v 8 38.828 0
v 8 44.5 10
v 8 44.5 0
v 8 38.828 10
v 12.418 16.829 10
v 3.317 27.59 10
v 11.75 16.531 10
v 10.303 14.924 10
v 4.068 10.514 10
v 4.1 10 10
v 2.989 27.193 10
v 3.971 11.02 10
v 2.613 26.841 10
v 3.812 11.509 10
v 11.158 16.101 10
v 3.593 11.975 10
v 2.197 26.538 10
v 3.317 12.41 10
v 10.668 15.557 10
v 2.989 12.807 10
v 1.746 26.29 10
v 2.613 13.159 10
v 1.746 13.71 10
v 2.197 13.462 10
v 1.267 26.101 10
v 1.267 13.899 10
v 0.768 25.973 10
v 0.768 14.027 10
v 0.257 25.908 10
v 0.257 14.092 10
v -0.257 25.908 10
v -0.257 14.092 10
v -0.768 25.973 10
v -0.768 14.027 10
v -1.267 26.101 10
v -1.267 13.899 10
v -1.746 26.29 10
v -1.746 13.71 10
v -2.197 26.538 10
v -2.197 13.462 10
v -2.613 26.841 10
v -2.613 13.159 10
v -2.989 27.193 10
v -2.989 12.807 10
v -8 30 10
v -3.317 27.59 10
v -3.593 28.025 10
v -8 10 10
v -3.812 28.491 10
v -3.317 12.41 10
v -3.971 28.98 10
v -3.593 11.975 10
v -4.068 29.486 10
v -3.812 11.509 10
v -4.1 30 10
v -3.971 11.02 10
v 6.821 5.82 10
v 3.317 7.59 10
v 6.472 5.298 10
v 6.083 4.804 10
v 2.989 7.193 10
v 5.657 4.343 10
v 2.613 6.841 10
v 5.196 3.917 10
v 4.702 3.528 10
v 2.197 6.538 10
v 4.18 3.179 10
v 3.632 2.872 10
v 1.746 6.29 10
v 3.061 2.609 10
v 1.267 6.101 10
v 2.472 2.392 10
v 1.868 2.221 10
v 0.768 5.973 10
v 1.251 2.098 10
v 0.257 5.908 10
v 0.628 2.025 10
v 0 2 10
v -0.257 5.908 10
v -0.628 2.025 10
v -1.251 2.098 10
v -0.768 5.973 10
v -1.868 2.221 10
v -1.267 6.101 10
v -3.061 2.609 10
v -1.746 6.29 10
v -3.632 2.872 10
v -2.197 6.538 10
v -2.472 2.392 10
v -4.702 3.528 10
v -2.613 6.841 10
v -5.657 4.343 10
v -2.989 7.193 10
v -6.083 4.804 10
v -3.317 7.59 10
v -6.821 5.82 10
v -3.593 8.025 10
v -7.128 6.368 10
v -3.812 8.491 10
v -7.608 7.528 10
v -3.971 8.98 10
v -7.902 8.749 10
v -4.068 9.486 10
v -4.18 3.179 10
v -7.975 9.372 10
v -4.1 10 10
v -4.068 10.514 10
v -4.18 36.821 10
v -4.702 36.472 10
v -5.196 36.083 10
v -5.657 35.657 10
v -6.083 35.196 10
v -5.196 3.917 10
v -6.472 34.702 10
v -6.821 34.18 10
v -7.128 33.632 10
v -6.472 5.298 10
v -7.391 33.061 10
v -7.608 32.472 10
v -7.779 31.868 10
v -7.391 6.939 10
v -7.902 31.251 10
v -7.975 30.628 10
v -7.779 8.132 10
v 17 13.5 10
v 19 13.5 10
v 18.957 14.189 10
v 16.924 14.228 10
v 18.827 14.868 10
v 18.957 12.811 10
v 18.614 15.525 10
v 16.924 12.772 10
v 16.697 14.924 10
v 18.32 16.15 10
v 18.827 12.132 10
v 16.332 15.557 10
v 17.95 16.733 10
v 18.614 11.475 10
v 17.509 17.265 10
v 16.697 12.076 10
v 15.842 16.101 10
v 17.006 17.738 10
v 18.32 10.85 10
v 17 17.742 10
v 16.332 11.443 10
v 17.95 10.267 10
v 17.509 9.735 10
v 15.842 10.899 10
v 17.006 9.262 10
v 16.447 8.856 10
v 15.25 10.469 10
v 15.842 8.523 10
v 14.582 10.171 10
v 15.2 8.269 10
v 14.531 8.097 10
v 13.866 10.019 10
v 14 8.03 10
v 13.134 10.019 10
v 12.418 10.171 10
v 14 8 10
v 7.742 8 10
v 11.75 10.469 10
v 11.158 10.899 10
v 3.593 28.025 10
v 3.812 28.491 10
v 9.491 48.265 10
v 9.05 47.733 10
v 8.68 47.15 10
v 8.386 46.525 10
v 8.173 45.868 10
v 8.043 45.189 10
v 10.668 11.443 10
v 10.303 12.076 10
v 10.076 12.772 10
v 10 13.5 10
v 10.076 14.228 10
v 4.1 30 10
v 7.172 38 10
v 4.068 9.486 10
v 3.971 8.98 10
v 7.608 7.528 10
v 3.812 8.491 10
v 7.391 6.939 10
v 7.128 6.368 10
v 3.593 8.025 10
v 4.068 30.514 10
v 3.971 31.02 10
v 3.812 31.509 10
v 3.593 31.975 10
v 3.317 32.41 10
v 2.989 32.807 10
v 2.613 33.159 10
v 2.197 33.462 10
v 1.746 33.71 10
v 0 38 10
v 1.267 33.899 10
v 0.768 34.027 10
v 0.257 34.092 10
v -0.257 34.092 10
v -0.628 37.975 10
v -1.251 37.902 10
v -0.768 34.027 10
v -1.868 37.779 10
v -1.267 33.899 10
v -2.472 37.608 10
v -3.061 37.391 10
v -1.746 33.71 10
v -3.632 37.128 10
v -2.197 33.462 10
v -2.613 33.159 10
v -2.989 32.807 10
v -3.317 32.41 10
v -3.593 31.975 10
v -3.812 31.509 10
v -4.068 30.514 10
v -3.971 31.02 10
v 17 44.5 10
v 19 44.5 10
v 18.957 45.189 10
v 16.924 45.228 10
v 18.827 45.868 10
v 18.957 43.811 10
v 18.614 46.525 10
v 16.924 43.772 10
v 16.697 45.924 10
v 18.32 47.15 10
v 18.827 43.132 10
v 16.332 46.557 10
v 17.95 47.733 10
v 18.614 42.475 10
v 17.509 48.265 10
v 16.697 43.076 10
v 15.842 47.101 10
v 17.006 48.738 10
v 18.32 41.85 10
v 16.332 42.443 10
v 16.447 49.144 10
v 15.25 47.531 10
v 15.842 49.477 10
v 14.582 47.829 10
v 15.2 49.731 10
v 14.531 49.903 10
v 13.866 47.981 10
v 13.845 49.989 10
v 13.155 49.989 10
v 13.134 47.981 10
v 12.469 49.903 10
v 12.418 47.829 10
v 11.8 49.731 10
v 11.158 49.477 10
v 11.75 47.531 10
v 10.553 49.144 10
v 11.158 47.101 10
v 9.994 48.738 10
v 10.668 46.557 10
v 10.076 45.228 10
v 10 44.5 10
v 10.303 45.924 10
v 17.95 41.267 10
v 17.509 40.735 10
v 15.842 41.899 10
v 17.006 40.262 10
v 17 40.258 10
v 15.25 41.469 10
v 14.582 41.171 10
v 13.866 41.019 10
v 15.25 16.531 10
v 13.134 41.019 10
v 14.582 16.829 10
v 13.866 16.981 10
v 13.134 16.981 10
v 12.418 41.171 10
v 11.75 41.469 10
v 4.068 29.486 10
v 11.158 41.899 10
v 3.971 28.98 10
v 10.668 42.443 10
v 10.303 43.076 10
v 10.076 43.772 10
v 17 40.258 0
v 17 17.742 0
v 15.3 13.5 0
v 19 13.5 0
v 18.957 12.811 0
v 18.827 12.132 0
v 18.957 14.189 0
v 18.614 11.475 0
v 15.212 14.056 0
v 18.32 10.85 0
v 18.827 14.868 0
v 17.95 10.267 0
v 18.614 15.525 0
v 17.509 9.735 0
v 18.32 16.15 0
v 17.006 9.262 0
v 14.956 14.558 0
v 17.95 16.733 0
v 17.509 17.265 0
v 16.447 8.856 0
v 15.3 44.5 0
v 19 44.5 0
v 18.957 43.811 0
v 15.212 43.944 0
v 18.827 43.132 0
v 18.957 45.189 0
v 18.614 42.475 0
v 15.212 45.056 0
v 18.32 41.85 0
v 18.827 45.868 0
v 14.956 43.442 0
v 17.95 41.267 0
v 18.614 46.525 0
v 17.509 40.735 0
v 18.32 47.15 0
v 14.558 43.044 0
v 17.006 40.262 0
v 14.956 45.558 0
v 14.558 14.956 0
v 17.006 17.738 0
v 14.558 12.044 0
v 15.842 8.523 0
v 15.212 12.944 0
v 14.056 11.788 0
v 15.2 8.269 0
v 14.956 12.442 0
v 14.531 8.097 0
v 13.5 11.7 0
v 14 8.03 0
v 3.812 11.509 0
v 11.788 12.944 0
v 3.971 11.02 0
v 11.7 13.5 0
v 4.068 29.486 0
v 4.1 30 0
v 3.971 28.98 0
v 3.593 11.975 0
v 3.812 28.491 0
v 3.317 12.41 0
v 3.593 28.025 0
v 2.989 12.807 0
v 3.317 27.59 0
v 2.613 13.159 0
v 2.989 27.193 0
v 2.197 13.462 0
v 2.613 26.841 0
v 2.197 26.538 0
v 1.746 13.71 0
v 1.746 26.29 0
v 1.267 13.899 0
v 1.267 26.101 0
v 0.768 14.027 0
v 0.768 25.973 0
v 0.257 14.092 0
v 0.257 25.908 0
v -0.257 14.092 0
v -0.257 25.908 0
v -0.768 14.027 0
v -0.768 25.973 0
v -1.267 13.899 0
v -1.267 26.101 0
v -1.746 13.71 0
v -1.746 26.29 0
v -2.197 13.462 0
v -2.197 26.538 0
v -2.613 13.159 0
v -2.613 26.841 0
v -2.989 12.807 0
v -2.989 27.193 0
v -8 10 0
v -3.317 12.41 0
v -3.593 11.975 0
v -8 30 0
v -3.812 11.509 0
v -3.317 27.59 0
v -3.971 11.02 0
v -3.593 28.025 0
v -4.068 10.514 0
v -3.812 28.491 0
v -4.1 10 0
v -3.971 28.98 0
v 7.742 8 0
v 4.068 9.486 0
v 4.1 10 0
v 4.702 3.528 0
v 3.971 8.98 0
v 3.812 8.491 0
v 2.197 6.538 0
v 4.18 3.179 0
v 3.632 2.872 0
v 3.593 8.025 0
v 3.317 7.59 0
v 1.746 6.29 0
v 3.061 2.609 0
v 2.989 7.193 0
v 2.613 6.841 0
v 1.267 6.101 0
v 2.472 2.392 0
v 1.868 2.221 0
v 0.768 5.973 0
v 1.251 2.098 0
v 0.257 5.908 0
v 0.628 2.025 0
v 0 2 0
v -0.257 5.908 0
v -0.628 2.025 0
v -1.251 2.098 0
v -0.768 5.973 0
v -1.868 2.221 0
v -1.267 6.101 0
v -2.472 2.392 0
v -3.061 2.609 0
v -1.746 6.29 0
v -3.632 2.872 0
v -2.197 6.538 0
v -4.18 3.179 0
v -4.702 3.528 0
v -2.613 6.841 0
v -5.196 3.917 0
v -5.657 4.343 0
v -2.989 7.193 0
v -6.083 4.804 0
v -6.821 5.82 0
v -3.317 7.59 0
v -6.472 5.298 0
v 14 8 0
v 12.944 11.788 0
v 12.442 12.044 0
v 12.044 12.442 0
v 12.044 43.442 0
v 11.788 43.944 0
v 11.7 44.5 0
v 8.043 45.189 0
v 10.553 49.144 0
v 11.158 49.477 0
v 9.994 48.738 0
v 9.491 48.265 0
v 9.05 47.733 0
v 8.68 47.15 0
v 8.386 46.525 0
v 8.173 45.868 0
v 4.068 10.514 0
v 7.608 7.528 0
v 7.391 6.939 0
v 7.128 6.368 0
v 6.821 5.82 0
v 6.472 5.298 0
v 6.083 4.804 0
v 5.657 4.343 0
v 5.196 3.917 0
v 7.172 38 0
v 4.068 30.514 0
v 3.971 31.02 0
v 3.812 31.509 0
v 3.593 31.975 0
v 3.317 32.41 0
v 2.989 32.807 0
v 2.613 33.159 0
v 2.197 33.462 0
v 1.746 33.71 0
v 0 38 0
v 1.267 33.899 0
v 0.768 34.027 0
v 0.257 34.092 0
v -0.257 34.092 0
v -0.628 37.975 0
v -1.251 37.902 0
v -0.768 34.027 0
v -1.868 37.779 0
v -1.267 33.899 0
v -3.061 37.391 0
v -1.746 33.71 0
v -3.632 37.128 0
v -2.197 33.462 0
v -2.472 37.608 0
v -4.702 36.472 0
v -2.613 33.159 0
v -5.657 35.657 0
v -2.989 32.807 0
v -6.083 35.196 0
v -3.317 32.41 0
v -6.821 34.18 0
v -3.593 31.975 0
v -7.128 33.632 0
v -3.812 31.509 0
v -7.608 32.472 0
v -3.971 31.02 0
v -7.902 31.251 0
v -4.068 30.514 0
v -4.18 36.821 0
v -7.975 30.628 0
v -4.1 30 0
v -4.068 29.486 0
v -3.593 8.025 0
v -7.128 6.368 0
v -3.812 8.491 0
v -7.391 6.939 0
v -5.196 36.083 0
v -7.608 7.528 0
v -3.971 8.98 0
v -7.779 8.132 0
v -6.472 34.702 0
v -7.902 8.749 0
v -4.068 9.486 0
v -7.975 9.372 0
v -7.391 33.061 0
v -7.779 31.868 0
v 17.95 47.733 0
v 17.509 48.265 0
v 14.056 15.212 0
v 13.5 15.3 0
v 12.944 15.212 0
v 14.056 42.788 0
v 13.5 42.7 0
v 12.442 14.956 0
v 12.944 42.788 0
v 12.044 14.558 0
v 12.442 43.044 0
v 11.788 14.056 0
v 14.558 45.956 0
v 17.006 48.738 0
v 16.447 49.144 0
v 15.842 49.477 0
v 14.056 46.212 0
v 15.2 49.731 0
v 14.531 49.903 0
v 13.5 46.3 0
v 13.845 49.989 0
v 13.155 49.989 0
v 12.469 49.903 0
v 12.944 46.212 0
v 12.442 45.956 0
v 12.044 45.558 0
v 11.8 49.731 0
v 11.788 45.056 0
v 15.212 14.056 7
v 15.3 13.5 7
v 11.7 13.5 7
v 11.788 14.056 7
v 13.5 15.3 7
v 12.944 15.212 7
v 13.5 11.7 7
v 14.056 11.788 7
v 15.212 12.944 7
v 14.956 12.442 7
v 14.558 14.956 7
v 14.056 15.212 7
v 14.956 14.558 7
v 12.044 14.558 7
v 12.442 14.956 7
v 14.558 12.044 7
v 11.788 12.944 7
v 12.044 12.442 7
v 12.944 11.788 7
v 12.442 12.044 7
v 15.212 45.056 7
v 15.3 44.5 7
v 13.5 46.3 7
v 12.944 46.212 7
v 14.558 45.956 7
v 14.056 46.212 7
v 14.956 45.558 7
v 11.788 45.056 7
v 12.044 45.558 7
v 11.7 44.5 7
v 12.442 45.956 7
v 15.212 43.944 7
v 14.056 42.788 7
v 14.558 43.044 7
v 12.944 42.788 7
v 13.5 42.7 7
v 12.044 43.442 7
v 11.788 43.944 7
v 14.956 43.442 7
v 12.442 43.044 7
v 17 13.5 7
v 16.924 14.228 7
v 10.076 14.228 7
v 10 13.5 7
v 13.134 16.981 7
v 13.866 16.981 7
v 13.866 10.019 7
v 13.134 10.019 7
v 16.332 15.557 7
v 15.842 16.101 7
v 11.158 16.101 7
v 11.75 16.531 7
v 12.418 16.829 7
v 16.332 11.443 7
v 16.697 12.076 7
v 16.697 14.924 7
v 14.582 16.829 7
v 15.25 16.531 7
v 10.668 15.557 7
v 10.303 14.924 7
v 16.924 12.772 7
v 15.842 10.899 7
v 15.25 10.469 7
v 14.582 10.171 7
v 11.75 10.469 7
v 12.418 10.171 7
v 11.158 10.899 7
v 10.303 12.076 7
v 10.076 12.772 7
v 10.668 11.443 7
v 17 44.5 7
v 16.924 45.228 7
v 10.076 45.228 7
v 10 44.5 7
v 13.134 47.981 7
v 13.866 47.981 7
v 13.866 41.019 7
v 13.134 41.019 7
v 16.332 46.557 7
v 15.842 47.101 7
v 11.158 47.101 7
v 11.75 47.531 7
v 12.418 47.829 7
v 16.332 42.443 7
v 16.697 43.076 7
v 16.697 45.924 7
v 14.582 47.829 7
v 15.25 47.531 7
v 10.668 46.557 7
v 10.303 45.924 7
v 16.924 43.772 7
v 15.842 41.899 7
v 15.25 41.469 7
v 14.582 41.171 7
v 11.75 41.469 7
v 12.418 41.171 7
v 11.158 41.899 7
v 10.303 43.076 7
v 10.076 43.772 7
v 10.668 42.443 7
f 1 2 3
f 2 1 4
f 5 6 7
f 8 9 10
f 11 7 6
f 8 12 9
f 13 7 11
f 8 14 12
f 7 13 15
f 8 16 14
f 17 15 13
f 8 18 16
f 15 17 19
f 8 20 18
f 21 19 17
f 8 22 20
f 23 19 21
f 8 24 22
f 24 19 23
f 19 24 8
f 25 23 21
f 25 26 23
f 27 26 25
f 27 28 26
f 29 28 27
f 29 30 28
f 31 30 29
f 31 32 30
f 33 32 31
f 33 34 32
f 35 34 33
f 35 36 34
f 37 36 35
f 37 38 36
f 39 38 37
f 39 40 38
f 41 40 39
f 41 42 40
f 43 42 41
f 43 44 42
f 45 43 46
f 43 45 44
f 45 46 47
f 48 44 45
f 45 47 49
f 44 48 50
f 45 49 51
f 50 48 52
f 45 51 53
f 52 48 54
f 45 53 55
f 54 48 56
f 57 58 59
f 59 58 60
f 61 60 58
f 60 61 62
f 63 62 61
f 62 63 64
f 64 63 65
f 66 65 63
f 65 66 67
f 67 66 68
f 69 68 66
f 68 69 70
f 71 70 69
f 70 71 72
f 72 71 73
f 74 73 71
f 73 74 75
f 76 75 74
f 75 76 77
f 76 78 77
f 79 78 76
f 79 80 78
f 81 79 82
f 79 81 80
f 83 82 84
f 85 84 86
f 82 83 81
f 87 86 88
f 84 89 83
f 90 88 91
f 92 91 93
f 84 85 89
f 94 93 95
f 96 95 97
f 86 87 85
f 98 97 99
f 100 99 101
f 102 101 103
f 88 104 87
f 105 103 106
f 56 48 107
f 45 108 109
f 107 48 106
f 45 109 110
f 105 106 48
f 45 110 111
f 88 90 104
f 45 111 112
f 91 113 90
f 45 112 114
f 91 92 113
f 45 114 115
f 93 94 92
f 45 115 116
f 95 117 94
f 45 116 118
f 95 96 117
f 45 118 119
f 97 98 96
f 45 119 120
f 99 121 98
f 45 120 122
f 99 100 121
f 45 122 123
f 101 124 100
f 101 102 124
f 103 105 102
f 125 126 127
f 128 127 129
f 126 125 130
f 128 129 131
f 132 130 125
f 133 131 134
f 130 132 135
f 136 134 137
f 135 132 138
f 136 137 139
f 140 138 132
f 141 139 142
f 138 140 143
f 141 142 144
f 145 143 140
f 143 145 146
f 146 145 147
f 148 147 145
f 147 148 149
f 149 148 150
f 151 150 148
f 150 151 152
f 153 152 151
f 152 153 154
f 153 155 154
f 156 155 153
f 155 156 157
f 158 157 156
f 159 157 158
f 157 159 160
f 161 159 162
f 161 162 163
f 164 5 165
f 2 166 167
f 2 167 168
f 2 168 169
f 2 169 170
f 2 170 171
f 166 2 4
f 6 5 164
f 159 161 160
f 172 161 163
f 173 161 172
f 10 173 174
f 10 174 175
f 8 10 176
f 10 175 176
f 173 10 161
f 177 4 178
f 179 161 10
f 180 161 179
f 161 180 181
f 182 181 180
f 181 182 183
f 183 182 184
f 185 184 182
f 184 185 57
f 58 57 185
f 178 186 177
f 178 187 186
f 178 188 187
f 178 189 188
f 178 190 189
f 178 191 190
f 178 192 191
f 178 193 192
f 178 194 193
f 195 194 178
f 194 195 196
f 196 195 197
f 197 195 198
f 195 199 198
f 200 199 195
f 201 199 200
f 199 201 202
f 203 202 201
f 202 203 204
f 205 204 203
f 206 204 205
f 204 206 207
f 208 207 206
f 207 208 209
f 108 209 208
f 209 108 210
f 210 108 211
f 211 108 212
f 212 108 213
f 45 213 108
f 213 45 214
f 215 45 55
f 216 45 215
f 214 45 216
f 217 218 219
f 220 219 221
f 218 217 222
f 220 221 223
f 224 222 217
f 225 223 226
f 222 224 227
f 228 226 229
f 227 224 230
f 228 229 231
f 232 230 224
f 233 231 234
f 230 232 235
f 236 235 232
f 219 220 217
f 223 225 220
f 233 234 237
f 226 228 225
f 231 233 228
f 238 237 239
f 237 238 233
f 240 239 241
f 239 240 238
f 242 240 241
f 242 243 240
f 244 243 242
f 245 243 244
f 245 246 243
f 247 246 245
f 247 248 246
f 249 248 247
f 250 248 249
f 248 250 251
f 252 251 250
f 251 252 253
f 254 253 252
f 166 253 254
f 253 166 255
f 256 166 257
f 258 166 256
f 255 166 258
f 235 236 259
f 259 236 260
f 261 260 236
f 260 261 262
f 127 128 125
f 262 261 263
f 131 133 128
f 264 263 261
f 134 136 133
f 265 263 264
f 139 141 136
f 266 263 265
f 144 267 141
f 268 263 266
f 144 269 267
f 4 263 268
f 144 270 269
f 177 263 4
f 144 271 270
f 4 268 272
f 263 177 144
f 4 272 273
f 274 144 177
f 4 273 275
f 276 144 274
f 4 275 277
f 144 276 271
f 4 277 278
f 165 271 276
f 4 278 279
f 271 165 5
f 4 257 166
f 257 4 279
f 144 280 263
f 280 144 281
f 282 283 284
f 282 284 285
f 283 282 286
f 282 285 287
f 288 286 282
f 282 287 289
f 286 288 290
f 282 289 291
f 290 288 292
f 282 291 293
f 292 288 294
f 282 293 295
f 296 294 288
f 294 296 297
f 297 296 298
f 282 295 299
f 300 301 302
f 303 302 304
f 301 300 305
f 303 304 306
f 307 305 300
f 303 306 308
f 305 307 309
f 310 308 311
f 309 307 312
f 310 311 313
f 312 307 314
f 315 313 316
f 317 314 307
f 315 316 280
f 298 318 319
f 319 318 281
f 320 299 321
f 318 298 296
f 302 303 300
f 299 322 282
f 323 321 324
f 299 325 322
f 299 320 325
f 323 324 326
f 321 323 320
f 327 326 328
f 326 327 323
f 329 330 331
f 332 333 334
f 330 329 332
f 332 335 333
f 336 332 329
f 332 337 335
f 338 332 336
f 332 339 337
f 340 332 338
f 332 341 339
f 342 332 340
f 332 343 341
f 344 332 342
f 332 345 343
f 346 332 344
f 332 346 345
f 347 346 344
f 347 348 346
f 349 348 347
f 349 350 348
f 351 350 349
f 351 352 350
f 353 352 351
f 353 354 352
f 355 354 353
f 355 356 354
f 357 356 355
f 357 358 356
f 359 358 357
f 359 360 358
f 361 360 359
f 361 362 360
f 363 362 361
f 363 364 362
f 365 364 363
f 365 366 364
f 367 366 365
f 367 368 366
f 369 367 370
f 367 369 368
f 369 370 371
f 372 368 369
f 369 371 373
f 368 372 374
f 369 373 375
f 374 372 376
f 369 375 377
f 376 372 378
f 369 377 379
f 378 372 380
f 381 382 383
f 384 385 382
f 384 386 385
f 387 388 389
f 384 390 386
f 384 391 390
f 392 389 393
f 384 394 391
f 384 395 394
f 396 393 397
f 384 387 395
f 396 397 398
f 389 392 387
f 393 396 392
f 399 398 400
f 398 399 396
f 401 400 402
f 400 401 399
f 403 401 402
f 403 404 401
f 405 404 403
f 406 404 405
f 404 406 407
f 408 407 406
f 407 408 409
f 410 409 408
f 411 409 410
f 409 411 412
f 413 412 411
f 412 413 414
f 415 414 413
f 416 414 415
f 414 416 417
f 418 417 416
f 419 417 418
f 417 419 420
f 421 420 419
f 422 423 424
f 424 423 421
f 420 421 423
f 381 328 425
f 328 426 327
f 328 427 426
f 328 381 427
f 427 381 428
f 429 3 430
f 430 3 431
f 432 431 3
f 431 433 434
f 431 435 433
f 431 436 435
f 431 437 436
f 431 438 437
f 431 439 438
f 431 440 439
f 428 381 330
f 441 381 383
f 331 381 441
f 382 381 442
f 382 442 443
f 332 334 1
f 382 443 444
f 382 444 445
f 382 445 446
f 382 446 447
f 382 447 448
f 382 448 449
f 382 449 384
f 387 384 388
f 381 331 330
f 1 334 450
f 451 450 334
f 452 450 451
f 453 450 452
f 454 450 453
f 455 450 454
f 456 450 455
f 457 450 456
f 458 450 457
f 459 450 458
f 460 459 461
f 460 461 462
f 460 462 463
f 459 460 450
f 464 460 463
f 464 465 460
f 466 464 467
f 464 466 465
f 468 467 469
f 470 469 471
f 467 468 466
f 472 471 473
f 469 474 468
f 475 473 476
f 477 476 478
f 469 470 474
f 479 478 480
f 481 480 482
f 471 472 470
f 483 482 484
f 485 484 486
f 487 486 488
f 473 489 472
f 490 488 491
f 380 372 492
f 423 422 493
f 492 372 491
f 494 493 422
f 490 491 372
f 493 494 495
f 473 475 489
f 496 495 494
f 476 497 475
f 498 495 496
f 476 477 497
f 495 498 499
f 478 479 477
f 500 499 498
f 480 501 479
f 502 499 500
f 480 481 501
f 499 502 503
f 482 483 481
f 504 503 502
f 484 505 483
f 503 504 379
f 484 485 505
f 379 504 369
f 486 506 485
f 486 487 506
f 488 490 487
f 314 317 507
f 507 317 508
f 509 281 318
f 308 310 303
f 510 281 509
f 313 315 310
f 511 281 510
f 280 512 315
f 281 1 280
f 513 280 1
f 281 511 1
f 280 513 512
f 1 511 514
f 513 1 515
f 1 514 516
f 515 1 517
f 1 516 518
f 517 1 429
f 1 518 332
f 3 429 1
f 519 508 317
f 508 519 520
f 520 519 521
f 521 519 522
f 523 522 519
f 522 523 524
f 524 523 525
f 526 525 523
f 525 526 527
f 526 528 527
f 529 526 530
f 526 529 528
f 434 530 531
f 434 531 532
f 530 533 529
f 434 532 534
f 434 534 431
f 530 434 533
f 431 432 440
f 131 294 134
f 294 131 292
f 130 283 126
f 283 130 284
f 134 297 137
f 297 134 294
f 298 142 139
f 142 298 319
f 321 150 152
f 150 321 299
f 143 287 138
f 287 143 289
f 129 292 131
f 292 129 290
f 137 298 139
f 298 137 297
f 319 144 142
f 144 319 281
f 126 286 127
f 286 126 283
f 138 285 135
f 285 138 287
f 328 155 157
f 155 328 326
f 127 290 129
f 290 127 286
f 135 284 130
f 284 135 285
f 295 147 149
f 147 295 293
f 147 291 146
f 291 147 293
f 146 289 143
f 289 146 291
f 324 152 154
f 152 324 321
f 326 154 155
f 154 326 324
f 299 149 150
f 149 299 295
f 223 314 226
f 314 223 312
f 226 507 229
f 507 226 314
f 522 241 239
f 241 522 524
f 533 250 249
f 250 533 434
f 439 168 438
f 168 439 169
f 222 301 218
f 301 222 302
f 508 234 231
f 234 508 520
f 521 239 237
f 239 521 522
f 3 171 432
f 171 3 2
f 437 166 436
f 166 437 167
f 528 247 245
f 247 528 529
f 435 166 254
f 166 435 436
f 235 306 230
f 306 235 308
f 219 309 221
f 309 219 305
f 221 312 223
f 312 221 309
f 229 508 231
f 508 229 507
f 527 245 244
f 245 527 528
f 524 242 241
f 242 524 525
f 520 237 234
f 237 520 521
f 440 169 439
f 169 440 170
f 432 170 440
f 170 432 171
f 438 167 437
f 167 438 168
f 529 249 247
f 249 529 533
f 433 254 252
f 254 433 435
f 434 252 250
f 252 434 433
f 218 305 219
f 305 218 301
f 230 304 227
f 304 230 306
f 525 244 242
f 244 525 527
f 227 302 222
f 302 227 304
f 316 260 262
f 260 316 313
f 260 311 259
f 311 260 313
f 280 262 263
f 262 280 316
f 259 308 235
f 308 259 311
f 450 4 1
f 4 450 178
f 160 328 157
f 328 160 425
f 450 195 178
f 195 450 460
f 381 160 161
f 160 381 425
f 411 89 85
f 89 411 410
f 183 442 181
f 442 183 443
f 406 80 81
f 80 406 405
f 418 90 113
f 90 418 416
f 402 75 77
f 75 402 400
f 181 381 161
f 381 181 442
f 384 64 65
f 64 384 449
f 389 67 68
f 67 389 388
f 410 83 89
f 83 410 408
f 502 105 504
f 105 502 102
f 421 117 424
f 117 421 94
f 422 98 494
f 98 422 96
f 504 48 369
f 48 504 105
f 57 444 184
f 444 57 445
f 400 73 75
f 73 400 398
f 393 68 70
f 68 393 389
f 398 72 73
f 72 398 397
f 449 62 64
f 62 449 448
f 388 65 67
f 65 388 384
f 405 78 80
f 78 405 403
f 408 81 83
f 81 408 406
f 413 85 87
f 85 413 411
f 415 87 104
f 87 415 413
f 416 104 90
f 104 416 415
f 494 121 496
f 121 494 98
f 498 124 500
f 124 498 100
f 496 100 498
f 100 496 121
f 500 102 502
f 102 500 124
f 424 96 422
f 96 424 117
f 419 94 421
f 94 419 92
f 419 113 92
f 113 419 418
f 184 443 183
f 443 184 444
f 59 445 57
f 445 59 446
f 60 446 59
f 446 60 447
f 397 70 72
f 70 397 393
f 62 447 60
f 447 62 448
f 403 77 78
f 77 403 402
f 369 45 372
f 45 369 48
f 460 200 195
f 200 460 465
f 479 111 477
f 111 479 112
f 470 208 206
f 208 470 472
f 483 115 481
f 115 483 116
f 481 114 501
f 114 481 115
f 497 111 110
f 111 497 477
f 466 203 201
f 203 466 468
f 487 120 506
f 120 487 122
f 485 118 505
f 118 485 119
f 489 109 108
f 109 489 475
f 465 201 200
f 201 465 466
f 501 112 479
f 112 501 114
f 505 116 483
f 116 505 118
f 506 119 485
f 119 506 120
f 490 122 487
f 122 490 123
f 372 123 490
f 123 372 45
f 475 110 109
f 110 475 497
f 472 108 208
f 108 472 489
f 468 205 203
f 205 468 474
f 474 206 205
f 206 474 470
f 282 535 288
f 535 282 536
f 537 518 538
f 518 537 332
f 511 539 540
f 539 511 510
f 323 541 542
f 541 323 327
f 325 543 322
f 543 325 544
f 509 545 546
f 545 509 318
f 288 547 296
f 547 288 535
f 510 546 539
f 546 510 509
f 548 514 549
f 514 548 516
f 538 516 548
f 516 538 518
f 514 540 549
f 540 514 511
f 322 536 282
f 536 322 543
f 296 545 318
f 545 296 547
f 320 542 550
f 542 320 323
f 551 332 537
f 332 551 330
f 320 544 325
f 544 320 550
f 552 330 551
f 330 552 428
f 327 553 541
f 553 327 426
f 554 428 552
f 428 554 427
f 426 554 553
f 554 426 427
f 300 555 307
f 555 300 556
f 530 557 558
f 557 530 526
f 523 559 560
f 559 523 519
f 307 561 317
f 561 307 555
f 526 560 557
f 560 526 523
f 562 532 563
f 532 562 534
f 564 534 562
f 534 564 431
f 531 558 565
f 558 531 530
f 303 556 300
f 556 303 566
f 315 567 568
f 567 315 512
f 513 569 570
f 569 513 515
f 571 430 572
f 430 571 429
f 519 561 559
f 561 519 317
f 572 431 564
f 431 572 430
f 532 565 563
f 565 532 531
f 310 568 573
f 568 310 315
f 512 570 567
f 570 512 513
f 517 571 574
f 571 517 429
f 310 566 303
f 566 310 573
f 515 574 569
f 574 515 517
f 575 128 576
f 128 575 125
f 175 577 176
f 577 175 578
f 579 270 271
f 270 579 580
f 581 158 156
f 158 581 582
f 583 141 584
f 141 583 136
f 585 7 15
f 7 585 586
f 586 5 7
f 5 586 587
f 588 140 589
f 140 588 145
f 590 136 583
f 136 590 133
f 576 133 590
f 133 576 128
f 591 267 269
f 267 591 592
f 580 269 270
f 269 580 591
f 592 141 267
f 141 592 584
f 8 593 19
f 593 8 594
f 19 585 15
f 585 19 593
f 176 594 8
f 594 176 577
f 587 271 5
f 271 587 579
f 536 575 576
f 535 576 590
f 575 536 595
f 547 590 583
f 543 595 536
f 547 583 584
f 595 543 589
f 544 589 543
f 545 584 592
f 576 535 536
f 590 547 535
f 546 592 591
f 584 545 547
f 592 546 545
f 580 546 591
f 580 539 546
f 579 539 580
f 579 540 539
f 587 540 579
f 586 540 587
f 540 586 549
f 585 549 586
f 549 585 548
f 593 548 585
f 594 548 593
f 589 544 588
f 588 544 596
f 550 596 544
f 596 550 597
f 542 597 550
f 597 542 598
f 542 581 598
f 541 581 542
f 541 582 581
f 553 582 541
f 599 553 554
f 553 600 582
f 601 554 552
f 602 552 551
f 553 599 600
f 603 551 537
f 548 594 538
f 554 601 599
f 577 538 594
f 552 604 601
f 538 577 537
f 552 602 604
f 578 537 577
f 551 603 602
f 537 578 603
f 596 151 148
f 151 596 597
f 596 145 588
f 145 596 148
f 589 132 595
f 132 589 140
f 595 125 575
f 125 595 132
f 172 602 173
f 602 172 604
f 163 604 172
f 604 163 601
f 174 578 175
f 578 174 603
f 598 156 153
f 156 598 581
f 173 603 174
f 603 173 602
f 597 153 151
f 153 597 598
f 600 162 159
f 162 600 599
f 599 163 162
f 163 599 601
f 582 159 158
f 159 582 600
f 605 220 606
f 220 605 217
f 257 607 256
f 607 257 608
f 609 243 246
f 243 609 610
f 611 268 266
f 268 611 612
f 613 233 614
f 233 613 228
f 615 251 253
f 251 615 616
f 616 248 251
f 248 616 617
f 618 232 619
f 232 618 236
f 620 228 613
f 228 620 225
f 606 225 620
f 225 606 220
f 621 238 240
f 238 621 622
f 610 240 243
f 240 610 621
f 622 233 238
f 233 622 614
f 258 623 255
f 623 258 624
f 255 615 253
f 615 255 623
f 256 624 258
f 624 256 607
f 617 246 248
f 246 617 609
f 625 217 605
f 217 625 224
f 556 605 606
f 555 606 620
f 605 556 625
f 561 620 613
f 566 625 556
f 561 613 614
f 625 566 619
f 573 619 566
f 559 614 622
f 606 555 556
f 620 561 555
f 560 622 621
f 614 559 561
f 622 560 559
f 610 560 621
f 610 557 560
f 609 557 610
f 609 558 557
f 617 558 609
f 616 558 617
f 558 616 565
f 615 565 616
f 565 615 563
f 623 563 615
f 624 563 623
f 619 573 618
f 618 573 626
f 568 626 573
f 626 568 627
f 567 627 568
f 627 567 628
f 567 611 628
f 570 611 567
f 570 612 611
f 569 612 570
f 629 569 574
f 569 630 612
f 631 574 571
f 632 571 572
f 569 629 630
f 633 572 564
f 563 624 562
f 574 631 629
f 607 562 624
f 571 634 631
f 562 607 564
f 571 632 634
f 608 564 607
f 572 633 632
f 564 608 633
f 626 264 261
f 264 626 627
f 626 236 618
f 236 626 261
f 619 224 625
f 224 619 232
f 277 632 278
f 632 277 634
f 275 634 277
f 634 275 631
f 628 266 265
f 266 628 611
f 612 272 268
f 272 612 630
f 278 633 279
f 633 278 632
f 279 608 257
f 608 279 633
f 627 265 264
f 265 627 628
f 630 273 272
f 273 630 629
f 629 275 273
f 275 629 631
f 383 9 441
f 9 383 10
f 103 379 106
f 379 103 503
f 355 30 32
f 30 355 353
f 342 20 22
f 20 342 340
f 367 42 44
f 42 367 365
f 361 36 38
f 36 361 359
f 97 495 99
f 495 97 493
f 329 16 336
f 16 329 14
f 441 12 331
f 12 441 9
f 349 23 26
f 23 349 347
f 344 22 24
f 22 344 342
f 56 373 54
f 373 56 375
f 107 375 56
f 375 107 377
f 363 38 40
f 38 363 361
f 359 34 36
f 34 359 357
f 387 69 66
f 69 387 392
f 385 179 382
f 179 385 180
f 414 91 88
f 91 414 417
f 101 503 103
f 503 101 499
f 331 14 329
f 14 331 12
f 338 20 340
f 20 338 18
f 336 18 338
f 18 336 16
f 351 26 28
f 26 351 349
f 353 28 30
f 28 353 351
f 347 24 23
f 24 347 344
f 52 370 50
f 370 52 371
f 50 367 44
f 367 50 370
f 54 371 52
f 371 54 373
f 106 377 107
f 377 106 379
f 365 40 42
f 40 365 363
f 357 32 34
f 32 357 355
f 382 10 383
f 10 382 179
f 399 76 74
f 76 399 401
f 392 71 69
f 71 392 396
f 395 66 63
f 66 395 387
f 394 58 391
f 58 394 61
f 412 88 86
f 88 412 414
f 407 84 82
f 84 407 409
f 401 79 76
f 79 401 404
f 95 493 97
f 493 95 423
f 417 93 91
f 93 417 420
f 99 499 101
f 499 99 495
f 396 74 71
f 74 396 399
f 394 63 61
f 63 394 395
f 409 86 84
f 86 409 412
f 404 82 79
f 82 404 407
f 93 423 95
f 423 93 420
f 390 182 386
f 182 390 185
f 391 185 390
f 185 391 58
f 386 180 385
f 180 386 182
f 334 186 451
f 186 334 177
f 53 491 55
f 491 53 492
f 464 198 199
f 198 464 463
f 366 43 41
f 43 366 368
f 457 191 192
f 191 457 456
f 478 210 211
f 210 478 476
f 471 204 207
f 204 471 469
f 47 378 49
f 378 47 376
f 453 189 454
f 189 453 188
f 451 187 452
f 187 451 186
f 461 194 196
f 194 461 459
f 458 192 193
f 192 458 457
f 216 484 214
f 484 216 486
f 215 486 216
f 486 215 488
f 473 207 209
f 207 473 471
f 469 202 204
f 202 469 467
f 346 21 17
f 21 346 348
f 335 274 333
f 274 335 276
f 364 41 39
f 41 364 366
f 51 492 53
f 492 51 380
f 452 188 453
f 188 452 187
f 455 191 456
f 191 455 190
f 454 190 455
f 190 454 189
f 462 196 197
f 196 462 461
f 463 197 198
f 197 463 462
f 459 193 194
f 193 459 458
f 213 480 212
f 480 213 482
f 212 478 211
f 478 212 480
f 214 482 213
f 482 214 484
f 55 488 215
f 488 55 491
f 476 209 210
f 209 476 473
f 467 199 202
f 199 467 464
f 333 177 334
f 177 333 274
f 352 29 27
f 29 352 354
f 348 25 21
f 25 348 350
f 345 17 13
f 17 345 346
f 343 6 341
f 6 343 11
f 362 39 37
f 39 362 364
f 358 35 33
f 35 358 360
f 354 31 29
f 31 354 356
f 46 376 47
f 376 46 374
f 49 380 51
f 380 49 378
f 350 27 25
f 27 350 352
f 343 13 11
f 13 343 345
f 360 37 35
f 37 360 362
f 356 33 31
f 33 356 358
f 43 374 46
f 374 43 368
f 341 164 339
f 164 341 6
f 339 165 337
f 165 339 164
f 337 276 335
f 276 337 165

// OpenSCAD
// PRUSA iteration3
// Y motor mount
// GNU GPL v3
// Josef Průša <iam@josefprusa.cz> and contributors
// http://www.reprap.org/wiki/Prusa_Mendel
// http://prusamendel.org

//include <configuration.scad>

module y_motor_base(){
 // Motor holding part
    translate(v = [29,-21+50,0]){
    translate(v = [-21+4.5,0,5]) cube(size = [9,31,10], center=true);
    translate(v = [-15.5,-15.5,0]) cylinder(h = 10, r=5.5, $fn=50);
    translate(v = [-15.5,+15.5,0]) cylinder(h = 10, r=5.5, $fn=50);
    translate([-21,7,0]) rotate([0,0,45]) cube([2, 2, 10]);    

    //end stop
    //translate(v = [-10.5,+15.5,0]) cylinder(h = 10, r=5.5, $fn=50);
    //translate([-12,0,0]) cube([7, 15, 10]);
    //translate([-16,16,0]) cube([6, 5, 10]);
    //translate([-21+6,8,0]) cube([12-2, 5, 28]);
    //translate([-21+6-2,8-5,0]) cube([4, 10, 28]);
    //translate([-21+9.5-2,7,0]) rotate([0,0,45]) cube([2, 2, 28]);    
  // Joins motor holder and rod plate
  translate(v = [-29,-21,0]) cube(size = [14,30,10]);
 }
 // Front holding part
 translate(v = [0,10,0]) cylinder(h = 10, r=8, $fn=80);
 translate(v = [0,20,5])cube(size = [16,20,10], center=true);	
 translate(v = [0,30,0])cylinder(h = 10, r=8, $fn=80);
}

module y_motor_holes(){
 translate(v = [29,-21+50,0]){
  // Screw head holes
  translate(v = [-15.5,-15.5,-1]) cylinder(h = 10, r=1.8, $fn=20);
  translate(v = [-15.5,+15.5,-1]) cylinder(h = 10, r=1.8, $fn=20);
  // Screw holes
  translate(v = [-15.5,-15.5,7]) cylinder(h = 7, r=3.5, $fn=30);
  translate(v = [-15.5,+15.5,7]) cylinder(h = 25, r=3.5, $fn=30);
 }
 translate(v = [0,10,-1]) cylinder(h = 12, r=4.1, $fn=50);	
 translate(v = [0,30,-1]) cylinder(h = 12, r=4.1, $fn=50);
 
 //endstop
 //   translate([25,29,0])  cylinder(h = 29, r=8, $fn=20); 
 //  
 //   #translate([18,45,15]) rotate([90,0,0]) cylinder(h = 10, r=0.8, $fn=20);
 //   translate([18,42.2,15]) rotate([90,0,0]) cylinder(h = 2, r1=1.2, r2=0.8, $fn=20);
 //
 //   #translate([18,45,24.5]) rotate([90,0,0]) cylinder(h = 10, r=0.8, $fn=20);
 //   translate([18,42.2,24.5]) rotate([90,0,0]) cylinder(h = 2, r1=1.2, r2=0.8, $fn=20);
 //  
 //   // endstop corner cutout
 //   translate([-5-2,30,28]) rotate([0,45,0]) cube([15, 19, 15]);	
 //   translate([-1,41,10])  cube([15, 5, 19]);	
 //   translate([27,33,0]) rotate([0,0,45]) cube([5, 5, 28]);	
 //   translate([12-2,28,10.01]) rotate([0,0,45]) cube([5, 5, 28]);
 //   
 //   translate([19,32,0]) rotate([0,30,0]) cube([8, 20, 18]);	
 //   translate([24.5-2,32,17]) rotate([0,45,0]) cube([2, 20, 2]);	
 //   
 //   translate([23-2,32,29]) rotate([0,45,0]) cube([5, 20, 5]);	
}




//#translate([18,40,10]) cube([8, 5, 5]);	

// Final part
module y_motor(){
 difference(){
  y_motor_base();
  y_motor_holes();
 }
}

y_motor();
